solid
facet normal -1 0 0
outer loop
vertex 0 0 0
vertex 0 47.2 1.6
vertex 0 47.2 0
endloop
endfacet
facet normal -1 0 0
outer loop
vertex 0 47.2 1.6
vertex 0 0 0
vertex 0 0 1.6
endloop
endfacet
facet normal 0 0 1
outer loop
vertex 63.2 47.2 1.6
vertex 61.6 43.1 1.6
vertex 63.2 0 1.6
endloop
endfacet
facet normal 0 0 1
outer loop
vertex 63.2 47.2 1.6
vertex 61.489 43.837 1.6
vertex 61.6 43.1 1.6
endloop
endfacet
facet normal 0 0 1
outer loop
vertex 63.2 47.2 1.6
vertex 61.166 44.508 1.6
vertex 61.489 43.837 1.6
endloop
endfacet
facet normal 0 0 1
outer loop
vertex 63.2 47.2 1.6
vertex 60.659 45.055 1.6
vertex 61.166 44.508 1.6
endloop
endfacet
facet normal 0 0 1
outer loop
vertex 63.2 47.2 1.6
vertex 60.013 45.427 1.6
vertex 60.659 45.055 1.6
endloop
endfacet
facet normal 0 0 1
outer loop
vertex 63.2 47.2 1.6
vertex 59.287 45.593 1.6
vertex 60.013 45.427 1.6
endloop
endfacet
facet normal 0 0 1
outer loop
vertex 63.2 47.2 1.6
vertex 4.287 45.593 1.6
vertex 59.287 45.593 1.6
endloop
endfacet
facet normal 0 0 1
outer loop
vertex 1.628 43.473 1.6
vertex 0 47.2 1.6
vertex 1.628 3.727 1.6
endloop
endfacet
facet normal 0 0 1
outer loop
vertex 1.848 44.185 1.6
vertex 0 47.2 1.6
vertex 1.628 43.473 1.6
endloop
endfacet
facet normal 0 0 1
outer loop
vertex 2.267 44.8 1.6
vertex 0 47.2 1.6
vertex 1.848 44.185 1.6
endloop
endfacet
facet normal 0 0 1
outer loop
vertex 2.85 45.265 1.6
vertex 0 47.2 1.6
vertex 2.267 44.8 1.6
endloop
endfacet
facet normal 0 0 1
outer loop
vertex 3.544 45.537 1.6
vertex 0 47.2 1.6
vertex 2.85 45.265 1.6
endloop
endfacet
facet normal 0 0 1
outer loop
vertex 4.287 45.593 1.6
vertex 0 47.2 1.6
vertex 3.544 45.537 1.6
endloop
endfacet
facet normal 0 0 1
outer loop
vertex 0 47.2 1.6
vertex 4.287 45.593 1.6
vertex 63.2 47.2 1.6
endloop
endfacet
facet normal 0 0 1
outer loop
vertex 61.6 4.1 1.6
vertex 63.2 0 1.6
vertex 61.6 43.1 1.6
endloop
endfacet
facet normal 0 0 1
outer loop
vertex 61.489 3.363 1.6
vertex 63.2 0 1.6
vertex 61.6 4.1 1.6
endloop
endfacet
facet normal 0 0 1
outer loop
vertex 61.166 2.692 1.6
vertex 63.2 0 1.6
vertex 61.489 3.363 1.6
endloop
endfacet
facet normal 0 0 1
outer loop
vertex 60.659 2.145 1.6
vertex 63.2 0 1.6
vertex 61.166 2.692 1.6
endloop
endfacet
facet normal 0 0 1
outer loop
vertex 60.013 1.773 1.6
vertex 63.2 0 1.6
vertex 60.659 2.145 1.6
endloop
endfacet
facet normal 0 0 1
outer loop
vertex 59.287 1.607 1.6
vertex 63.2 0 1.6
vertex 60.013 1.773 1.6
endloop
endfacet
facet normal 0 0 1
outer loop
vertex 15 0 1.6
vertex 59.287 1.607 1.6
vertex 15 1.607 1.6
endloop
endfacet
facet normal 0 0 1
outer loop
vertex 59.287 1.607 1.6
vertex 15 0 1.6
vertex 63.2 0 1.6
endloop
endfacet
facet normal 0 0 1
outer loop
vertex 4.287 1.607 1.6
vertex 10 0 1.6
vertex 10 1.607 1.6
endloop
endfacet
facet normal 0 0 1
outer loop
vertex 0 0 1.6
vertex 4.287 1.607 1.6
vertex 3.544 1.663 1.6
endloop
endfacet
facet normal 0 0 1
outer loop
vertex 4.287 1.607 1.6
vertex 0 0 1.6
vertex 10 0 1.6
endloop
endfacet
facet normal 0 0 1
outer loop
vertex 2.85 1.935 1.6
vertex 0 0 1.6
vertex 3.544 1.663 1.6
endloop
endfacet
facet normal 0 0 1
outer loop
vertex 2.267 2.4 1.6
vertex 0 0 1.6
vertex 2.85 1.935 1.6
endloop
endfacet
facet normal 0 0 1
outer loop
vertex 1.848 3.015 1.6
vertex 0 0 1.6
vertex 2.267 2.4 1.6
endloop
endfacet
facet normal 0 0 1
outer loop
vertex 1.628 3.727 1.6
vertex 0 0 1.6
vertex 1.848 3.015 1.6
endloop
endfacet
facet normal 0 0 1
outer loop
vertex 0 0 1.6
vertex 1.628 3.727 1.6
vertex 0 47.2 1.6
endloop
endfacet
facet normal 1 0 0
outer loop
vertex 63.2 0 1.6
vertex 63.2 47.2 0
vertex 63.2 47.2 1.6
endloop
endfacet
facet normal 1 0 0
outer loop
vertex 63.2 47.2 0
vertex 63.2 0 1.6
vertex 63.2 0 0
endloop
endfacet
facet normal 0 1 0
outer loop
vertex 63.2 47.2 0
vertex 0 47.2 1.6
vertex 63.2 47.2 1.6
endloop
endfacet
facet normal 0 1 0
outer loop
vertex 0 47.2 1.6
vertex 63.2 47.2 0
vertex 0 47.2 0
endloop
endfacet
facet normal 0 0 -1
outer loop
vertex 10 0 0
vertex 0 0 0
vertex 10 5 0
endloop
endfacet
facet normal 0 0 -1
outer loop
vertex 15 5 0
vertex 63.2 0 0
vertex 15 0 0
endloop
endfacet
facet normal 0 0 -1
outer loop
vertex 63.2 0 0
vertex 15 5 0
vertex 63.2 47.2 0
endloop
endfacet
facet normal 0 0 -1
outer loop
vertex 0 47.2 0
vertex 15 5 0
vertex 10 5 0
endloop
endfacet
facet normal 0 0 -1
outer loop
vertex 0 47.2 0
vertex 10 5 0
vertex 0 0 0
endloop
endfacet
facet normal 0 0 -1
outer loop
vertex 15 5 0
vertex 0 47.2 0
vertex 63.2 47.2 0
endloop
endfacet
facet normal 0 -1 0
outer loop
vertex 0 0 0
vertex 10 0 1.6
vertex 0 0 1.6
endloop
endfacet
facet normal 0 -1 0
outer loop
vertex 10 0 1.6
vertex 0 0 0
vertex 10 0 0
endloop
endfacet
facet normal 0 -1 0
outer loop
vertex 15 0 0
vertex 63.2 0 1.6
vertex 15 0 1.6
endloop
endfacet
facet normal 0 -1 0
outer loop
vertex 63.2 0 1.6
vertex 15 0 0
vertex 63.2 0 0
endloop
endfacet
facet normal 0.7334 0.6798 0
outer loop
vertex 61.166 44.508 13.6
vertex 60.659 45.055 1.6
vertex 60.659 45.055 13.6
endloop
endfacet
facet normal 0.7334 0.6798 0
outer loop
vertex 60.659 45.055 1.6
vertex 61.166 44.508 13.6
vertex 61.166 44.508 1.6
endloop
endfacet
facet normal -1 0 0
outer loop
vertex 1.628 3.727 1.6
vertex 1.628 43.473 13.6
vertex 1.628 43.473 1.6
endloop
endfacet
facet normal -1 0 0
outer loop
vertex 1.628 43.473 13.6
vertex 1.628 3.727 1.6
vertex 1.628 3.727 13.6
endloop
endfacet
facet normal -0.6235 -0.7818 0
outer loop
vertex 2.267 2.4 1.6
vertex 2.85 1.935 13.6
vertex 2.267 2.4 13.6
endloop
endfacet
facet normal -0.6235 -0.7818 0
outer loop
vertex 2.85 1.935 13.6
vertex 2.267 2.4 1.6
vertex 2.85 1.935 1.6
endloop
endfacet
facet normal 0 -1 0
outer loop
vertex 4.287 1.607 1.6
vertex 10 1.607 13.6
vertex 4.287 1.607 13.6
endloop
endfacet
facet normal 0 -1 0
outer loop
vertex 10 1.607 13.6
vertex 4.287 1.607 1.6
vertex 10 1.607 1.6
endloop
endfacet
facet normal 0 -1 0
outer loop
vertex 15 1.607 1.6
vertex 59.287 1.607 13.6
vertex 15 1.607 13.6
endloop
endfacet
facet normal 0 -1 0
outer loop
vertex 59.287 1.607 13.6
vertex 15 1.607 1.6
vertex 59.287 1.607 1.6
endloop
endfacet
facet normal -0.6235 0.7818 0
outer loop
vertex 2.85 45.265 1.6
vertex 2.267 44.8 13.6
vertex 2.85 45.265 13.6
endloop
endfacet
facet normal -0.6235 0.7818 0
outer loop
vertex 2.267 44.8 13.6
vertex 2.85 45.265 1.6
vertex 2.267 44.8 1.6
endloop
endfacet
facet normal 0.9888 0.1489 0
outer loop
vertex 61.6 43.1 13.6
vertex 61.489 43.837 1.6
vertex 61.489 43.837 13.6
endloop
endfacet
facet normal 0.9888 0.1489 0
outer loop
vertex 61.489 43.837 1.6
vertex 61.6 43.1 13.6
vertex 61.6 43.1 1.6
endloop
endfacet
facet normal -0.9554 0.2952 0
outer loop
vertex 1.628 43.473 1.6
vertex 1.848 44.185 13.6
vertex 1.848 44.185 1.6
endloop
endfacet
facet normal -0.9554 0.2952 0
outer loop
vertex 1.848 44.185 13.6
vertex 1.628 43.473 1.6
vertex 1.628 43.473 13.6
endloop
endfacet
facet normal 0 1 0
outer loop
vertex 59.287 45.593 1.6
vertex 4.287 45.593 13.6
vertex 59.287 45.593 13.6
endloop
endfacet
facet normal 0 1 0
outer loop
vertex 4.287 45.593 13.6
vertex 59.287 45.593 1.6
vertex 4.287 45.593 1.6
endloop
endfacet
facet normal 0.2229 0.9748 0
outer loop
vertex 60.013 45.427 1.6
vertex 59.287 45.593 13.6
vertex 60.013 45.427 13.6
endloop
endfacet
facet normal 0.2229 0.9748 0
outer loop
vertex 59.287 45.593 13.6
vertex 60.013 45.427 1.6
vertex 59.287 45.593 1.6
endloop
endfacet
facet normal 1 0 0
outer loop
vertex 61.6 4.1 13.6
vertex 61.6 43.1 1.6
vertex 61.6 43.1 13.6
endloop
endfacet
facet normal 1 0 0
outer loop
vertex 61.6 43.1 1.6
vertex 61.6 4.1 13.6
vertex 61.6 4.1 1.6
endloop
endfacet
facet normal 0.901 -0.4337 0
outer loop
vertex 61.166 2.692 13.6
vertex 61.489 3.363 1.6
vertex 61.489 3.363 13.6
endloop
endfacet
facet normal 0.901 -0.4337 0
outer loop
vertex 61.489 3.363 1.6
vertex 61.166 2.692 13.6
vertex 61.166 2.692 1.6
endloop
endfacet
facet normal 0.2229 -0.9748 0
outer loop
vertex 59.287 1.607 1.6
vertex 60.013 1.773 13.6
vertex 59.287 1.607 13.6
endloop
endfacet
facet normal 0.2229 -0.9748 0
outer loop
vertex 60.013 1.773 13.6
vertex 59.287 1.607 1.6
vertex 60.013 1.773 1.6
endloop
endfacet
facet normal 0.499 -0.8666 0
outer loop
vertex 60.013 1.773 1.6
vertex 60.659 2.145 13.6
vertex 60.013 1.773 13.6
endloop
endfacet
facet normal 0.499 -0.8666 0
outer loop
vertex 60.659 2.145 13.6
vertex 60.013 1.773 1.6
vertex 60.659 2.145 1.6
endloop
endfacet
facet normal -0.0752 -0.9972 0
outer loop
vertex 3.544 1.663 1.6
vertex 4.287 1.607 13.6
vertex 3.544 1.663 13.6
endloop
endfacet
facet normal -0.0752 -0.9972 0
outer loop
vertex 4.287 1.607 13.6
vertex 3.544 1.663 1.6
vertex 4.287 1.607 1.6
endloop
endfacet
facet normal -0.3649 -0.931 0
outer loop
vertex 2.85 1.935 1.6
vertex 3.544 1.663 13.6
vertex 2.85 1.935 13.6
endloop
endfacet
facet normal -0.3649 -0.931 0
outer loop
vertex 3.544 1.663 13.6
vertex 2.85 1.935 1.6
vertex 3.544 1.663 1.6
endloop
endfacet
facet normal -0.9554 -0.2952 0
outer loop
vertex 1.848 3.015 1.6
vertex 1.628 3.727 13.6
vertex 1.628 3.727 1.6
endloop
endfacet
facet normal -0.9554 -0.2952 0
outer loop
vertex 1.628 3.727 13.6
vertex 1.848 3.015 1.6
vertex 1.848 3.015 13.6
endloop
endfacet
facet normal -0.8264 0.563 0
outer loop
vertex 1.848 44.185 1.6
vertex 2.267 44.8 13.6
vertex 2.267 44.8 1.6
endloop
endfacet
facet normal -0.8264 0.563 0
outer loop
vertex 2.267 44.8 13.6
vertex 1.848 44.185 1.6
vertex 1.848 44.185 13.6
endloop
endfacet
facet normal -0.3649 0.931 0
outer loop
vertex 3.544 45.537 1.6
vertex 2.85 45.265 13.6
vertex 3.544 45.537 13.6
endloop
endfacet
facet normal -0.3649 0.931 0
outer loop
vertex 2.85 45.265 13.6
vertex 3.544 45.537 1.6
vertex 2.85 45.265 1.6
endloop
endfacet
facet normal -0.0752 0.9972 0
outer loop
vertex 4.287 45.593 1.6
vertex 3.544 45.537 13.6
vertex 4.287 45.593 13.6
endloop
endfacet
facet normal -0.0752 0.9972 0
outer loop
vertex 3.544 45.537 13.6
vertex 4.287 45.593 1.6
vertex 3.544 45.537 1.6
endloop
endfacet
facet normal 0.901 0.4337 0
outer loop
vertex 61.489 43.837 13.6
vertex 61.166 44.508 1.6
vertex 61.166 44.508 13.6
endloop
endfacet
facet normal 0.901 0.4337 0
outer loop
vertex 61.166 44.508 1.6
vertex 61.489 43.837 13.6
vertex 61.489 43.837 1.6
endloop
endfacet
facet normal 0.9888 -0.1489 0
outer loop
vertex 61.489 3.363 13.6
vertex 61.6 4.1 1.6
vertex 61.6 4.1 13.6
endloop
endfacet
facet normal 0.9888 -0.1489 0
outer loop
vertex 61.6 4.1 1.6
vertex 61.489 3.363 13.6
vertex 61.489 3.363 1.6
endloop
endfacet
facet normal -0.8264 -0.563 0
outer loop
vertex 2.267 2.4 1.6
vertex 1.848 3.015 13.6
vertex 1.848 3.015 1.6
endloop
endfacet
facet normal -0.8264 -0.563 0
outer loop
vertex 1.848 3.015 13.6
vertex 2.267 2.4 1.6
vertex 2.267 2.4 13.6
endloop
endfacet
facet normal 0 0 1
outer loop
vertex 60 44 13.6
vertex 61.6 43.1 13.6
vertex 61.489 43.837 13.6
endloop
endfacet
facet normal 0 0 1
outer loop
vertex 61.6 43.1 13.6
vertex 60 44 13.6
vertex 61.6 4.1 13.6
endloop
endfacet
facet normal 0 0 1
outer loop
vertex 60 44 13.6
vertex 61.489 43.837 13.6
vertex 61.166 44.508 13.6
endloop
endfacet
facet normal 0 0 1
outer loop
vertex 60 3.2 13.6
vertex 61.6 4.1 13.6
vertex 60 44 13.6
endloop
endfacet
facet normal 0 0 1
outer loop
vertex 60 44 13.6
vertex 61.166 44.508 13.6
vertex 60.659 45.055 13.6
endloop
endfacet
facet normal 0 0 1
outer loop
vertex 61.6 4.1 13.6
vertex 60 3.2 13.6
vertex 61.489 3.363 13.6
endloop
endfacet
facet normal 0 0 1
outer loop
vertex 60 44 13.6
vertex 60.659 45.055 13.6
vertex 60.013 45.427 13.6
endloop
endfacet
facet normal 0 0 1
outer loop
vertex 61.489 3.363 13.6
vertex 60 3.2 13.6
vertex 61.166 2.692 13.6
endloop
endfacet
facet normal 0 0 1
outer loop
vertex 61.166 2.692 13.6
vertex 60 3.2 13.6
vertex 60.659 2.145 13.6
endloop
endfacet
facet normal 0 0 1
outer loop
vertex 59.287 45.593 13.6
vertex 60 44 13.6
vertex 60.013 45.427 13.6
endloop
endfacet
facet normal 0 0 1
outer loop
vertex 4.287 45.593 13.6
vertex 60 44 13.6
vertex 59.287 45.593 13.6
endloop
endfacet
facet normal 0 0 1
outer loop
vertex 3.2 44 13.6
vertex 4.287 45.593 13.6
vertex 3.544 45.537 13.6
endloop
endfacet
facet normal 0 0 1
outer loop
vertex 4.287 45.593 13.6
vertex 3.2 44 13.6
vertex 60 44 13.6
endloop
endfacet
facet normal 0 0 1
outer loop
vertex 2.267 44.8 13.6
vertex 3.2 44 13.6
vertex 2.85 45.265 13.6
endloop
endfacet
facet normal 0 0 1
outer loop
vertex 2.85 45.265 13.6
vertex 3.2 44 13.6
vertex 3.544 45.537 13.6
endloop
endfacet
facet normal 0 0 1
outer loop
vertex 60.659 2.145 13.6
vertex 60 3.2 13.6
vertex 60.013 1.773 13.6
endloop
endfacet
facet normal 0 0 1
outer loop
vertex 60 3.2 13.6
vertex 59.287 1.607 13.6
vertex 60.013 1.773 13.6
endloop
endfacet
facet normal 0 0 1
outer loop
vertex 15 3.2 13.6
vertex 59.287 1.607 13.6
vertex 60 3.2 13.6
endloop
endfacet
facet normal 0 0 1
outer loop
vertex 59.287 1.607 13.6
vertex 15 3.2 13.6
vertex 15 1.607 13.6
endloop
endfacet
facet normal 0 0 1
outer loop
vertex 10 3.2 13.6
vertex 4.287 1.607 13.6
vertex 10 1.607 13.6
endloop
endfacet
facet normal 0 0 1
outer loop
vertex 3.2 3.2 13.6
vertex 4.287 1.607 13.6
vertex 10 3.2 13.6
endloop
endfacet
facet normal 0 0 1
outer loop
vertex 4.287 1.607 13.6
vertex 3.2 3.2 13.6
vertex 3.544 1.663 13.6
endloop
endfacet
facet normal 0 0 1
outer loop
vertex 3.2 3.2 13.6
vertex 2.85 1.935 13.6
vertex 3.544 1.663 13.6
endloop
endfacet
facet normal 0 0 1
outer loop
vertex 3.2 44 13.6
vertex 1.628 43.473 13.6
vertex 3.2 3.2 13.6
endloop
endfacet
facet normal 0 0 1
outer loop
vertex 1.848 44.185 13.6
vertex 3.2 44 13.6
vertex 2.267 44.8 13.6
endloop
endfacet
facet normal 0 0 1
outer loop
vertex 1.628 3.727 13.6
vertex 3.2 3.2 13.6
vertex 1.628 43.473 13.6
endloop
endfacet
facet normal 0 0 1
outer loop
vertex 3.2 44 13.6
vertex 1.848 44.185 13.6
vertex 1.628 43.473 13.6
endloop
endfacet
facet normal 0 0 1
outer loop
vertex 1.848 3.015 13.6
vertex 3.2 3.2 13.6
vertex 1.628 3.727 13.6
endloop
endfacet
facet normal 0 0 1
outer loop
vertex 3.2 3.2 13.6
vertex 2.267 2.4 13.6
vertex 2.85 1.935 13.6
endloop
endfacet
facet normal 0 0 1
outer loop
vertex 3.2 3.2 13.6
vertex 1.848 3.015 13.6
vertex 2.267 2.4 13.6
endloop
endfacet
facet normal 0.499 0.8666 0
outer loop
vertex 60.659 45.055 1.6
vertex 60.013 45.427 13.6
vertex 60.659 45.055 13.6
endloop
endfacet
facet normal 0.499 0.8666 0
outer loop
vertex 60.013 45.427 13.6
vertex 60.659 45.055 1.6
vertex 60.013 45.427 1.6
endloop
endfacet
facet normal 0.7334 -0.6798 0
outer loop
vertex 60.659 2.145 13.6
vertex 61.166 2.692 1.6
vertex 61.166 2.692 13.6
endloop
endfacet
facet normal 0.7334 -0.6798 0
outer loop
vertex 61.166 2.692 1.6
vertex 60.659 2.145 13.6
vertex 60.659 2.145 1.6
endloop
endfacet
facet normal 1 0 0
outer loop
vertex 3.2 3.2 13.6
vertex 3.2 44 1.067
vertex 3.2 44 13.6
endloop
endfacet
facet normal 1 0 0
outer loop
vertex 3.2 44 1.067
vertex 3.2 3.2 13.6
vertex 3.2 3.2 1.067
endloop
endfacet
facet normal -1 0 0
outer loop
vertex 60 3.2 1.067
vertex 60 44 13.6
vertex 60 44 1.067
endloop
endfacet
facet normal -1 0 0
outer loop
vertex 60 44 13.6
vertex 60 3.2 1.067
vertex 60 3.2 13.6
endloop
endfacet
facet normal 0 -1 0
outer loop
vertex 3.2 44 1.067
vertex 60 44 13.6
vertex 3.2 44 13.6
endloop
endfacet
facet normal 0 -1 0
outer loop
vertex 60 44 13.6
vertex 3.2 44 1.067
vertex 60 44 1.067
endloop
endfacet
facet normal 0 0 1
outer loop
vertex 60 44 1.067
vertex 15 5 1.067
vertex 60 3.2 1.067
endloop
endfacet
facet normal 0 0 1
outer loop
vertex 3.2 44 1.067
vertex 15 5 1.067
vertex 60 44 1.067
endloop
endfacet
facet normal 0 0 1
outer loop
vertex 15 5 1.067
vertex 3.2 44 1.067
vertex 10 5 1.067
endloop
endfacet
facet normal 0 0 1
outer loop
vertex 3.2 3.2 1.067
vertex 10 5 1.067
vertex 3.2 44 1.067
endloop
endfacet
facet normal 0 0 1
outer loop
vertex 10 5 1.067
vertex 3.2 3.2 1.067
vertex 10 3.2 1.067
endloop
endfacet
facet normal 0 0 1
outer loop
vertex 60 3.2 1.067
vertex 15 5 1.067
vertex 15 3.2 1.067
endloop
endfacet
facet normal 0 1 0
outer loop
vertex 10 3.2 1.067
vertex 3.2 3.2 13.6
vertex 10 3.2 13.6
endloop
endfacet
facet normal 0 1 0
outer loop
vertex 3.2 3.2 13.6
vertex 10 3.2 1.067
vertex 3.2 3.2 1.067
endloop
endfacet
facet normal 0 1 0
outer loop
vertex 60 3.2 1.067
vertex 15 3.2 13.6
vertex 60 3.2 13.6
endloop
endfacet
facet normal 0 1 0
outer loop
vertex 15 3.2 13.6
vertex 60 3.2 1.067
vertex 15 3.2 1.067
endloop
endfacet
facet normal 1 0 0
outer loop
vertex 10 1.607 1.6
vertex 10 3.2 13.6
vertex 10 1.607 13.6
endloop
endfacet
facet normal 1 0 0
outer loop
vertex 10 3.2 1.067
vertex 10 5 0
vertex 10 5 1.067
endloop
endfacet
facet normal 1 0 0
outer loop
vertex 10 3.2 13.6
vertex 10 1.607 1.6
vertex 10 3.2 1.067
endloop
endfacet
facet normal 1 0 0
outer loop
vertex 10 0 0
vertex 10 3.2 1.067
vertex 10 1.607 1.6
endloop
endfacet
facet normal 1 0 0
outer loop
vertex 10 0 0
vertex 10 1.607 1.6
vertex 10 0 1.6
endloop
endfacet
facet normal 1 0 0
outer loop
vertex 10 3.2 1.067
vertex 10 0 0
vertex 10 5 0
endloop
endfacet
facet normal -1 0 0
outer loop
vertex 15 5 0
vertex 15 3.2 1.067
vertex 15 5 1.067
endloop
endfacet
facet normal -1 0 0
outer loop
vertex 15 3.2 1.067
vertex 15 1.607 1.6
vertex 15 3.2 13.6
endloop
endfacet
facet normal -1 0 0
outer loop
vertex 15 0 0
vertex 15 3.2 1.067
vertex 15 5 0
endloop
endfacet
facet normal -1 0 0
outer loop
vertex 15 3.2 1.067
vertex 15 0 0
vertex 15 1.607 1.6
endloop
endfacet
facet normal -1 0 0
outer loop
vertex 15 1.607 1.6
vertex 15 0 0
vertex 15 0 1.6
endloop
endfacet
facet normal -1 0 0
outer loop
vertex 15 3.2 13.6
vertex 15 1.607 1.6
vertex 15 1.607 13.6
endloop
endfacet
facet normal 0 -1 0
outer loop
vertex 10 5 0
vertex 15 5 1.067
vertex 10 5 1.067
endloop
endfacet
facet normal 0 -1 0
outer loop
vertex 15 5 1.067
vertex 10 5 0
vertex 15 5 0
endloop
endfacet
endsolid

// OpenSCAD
width = 60;
length = 44;
height = 65;

w=0.4*4;


difference()
{
    union()
    {
        cube([width+2*w,length+2*w,w]);

        translate([w,w,w])
        round_cube(width, length, 12);
        //cube([width,length,6]);
    }

    translate([w,w,w])
    translate([w,w,-w/3])
    #cube([width-2*w,length-2*w,12+w]);
    translate([10,0,-w])
    #cube([5,5,16]);
}


module round_cube(width, length, height)
{
    $fn=21;
    d = 5;
    
    translate([d/2,d/2,0])
    hull()
    {
        translate([0,0,0])
        cylinder(d=d,h=height);
        translate([width-d,0,0])
        cylinder(d=d,h=height);
        translate([width-d,length-d,0])
        cylinder(d=d,h=height);
        translate([0,length-d,0])
        cylinder(d=d,h=height);
    }
    
}
